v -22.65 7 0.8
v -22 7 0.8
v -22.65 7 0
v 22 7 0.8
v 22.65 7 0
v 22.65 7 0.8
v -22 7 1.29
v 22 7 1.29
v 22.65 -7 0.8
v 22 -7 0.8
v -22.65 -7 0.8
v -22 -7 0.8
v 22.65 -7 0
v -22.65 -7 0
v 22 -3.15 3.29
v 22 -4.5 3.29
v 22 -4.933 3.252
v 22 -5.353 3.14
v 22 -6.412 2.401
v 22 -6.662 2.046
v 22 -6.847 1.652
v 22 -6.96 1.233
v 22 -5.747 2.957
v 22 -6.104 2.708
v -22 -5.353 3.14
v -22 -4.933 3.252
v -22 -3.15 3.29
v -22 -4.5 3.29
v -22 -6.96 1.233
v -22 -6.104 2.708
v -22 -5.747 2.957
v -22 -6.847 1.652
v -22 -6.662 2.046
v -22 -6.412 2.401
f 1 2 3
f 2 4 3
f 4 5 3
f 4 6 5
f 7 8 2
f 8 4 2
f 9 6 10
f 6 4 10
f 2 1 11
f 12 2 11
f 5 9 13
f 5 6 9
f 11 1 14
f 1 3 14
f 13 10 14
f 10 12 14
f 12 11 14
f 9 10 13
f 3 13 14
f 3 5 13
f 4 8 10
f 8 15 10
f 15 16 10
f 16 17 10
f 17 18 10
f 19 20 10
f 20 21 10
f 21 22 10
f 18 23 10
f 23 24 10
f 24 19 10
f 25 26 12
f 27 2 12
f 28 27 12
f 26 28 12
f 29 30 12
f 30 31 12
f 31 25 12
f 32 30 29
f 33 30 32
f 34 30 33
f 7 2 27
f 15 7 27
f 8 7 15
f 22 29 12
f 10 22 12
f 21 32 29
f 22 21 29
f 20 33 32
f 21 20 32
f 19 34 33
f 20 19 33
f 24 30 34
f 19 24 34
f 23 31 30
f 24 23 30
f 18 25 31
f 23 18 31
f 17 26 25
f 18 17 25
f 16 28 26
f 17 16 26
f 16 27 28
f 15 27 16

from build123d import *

# Parameters (mm, degrees)
ESQUISSE1_W             = 45.3
ESQUISSE1_H             = 14
BOSS_EXTRU_1_DEPTH      = 0.8
ESQUISSE2_W             = 44
ESQUISSE2_H             = 14
BOSS_EXTRU_2_DEPTH      = 5
ENL_V_MAT_EXTRU_1_DEPTH = 57


with BuildPart() as part:
    # Esquisse1 → Boss.-Extru.1 (new body)
    with BuildSketch(Plane.XY):
        Rectangle(ESQUISSE1_W, ESQUISSE1_H)
    extrude(amount=BOSS_EXTRU_1_DEPTH)

    # Esquisse2 → Boss.-Extru.2 (add)
    with BuildSketch(Plane.XY.offset(0.8)):
        Rectangle(ESQUISSE2_W, ESQUISSE2_H)
    extrude(amount=BOSS_EXTRU_2_DEPTH)

    # Esquisse4 → Enlèv. mat.-Extru.1 (cut)
    with BuildSketch(Plane.ZY.offset(22)):
        with BuildLine():
            Line((1.29, 7), (3.29, -3.15))
            Line((3.29, -3.15), (3.29, -4.5))
            ThreePointArc((3.29, -4.5), (2.561300162, -6.264234962), (0.8, -7))
            Line((0.8, -7), (9.633506855, -10.676835967))
            Line((9.633506855, -10.676835967), (7.497371295, 9.595509349))
            Line((7.497371295, 9.595509349), (1.29, 7))
        make_face()
    extrude(amount=-ENL_V_MAT_EXTRU_1_DEPTH, mode=Mode.SUBTRACT)


solid = part.part
